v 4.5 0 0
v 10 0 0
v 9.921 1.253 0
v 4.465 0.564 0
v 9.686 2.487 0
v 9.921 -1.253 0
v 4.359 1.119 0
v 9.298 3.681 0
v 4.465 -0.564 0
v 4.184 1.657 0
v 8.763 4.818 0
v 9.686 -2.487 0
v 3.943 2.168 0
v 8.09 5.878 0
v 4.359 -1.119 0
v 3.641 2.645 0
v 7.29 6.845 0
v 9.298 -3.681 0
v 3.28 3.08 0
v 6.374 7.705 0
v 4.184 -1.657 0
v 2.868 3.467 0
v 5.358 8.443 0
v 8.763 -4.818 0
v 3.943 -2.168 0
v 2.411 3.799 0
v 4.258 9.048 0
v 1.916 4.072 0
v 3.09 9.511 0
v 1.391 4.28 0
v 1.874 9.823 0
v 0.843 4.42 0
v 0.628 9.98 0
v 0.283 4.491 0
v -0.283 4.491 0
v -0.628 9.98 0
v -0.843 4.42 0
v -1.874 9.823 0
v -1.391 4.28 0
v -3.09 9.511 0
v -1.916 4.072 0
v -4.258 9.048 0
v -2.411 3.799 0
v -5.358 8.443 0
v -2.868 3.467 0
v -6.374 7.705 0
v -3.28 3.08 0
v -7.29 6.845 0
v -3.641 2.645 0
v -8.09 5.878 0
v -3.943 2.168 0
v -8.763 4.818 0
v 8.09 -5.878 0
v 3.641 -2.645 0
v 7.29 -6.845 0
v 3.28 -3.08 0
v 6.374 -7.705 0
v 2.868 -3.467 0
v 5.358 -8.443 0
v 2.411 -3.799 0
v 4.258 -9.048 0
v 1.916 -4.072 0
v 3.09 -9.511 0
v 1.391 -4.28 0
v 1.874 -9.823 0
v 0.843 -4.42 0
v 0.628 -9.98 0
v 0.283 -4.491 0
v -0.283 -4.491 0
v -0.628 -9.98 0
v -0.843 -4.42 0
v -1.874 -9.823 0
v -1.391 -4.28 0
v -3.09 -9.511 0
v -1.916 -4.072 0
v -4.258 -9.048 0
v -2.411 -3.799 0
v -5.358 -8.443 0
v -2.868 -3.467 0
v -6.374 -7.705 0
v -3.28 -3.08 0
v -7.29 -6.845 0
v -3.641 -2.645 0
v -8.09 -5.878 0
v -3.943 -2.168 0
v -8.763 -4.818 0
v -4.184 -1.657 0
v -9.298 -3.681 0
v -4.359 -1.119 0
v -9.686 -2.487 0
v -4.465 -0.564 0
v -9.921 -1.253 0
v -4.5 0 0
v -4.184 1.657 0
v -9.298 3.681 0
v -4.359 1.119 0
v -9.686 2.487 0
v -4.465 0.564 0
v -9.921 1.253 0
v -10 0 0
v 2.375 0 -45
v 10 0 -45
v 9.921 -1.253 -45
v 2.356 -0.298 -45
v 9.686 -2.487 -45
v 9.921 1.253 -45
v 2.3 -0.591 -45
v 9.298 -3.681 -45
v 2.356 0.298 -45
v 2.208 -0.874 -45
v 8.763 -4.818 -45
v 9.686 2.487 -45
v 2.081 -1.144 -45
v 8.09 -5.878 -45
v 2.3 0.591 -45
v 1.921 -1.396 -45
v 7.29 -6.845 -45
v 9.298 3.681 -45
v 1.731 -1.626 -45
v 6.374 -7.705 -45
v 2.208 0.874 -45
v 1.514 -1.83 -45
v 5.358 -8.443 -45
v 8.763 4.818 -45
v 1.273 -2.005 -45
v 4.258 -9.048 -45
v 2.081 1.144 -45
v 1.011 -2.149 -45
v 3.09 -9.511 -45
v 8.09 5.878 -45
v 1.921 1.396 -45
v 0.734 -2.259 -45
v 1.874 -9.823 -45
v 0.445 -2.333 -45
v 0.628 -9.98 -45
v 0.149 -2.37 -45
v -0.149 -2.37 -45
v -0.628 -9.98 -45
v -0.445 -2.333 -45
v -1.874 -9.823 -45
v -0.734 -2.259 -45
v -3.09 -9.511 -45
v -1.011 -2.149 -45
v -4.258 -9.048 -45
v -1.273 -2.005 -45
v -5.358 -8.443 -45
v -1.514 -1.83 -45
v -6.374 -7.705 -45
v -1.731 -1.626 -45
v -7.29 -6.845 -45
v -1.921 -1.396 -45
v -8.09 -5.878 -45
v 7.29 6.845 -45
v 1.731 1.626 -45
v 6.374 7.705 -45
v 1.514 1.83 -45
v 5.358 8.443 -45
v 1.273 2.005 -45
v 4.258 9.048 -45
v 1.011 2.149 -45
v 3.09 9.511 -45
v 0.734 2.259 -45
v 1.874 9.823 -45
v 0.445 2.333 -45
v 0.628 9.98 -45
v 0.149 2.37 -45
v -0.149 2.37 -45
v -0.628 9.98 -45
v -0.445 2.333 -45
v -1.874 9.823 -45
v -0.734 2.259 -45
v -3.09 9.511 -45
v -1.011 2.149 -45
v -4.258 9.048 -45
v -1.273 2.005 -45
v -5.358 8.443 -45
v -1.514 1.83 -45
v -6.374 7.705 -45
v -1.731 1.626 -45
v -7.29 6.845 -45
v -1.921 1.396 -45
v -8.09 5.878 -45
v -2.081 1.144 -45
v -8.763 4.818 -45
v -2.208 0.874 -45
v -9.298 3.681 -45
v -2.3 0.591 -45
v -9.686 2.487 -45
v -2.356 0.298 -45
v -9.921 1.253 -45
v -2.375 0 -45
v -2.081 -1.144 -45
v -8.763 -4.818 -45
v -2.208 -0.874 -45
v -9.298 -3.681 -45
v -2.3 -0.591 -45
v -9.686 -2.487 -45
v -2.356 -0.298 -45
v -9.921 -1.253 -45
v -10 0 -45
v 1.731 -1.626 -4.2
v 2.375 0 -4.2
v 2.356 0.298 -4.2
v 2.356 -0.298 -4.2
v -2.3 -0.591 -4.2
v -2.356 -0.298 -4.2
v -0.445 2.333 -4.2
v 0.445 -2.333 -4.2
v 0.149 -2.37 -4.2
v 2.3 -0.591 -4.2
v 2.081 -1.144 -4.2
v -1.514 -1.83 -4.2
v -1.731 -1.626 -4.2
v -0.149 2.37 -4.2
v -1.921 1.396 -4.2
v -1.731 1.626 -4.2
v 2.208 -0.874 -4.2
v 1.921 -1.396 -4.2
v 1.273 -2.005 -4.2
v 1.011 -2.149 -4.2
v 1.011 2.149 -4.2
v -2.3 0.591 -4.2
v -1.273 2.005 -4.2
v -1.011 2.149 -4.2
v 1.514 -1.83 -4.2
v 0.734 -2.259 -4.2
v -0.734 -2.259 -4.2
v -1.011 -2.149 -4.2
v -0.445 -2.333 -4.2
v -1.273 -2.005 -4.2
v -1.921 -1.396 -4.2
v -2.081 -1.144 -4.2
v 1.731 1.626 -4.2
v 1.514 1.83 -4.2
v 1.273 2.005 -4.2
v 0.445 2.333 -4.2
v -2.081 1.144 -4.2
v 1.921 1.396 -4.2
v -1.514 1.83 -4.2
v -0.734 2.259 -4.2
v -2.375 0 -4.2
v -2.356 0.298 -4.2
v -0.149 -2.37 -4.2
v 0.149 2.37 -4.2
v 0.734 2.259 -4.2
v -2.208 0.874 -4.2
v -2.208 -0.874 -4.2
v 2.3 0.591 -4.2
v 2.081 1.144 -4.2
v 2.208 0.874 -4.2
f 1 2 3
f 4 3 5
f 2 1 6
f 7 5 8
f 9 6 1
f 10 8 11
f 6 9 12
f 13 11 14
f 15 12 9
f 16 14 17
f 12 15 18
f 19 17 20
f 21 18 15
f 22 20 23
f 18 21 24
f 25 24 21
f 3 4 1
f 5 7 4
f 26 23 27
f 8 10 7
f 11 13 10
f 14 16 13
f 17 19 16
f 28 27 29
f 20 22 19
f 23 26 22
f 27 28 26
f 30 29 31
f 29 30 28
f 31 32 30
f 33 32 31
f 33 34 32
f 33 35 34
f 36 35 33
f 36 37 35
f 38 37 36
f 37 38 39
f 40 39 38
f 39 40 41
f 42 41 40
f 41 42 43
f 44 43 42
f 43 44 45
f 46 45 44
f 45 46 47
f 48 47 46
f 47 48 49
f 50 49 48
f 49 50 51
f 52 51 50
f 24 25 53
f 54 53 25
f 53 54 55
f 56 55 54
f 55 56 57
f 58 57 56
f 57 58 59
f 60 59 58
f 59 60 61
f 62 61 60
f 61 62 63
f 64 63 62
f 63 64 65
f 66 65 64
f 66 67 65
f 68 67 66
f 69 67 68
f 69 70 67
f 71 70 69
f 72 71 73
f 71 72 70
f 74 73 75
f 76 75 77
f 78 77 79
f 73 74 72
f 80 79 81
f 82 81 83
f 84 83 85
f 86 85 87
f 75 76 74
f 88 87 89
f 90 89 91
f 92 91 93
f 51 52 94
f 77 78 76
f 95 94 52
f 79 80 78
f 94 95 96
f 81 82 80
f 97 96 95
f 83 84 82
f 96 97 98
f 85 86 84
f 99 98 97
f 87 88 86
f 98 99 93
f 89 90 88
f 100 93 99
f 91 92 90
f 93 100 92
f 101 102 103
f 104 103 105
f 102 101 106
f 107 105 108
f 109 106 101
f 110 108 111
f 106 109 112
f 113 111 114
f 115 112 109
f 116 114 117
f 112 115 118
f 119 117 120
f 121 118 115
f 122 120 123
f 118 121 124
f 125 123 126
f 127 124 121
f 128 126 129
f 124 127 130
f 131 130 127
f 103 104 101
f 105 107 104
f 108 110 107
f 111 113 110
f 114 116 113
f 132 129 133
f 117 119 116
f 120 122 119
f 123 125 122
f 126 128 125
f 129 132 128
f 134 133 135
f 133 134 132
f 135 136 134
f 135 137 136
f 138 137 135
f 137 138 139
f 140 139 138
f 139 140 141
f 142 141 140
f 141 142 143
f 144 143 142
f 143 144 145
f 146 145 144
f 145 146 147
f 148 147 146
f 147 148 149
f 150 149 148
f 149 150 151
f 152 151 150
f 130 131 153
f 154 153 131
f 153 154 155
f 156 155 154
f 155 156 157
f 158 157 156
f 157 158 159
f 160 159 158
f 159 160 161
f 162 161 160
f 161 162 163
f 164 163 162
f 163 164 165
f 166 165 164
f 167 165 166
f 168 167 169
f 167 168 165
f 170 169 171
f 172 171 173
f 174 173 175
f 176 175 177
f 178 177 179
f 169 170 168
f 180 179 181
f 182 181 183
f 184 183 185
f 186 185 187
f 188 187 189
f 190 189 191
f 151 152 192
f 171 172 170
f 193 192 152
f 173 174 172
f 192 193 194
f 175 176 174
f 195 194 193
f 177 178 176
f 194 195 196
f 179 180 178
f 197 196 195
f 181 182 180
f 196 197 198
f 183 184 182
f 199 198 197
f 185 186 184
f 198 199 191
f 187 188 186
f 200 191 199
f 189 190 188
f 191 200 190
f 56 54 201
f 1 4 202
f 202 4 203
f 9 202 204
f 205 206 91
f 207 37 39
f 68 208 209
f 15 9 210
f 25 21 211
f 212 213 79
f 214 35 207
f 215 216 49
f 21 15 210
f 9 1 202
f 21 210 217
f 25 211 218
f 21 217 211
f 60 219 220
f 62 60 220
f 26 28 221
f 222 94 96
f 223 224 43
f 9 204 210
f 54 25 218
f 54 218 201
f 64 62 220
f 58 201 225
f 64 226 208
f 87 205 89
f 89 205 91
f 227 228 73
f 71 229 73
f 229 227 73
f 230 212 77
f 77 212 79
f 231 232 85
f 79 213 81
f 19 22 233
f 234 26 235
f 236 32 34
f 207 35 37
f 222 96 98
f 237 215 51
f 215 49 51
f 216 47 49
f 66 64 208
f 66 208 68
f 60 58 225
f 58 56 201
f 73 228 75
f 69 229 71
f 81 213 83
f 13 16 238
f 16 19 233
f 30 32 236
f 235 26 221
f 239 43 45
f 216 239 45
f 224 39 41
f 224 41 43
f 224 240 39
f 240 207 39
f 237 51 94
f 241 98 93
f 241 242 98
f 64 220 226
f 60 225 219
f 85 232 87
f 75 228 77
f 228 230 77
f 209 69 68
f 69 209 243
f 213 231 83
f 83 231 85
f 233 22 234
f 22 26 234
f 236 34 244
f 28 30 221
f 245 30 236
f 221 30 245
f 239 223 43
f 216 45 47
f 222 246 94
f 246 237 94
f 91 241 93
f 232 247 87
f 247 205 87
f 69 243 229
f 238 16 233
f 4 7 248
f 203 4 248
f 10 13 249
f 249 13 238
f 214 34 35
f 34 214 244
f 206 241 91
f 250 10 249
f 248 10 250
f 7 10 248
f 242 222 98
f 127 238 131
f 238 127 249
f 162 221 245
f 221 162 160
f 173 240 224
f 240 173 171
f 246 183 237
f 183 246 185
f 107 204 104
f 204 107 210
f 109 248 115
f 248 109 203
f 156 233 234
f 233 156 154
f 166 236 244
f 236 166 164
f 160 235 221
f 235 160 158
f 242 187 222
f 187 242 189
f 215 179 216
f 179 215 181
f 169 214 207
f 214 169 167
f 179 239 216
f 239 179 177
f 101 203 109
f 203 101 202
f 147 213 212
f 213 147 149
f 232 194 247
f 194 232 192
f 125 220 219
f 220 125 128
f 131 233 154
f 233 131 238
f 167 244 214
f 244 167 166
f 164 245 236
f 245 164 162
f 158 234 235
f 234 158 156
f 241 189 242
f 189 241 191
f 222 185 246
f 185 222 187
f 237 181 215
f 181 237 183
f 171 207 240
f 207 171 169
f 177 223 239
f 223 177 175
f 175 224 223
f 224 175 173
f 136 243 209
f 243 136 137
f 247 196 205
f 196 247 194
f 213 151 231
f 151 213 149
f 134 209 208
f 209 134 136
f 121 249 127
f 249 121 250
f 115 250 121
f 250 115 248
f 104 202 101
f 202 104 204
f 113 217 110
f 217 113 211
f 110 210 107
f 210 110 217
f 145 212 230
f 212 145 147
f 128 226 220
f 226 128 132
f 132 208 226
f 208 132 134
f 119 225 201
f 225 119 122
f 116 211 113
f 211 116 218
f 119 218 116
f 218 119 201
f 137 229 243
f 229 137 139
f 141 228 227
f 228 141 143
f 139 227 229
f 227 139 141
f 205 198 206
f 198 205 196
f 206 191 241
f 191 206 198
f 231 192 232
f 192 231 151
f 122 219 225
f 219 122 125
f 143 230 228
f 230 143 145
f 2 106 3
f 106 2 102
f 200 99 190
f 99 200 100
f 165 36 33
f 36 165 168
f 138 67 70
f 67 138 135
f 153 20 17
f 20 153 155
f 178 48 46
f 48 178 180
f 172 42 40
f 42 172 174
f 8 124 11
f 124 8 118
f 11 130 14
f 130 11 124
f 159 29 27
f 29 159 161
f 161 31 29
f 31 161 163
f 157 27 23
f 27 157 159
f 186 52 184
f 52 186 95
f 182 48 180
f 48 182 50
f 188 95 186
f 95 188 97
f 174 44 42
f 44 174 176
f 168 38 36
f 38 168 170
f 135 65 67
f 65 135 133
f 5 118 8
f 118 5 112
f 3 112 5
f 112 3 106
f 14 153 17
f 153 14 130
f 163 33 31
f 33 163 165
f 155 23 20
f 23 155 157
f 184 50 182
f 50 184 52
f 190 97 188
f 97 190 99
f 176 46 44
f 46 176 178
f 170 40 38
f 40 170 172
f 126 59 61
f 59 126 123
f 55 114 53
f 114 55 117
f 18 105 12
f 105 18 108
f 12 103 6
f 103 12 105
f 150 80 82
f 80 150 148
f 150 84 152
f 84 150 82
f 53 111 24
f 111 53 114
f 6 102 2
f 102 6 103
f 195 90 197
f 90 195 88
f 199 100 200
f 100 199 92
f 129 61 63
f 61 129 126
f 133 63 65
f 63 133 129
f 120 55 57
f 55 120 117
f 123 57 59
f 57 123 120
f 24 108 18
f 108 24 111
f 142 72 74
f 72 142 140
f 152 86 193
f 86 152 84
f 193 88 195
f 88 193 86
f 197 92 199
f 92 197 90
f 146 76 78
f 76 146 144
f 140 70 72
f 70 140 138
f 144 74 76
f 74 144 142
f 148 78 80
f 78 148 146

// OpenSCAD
$fn = 50;


difference() {
	union() {
		translate(v = [0, 0, -45.0000000000]) {
			cylinder(h = 45, r = 10.0000000000);
		}
		cylinder(h = 0, r = 20.0000000000);
	}
	union() {
		translate(v = [0, 0, 0]) {
			rotate(a = [0, 0, 0]) {
				difference() {
					union() {
						#translate(v = [0, 0, -45.0000000000]) {
							cylinder(h = 45, r = 2.2500000000);
						}
						#translate(v = [0, 0, -4.2000000000]) {
							cylinder(h = 4.2000000000, r1 = 2.3750000000, r2 = 4.5000000000);
						}
						#translate(v = [0, 0, -45.0000000000]) {
							cylinder(h = 45, r = 2.3750000000);
						}
						#translate(v = [0, 0, -45.0000000000]) {
							cylinder(h = 45, r = 2.2500000000);
						}
					}
					union();
				}
			}
		}
	}
}
